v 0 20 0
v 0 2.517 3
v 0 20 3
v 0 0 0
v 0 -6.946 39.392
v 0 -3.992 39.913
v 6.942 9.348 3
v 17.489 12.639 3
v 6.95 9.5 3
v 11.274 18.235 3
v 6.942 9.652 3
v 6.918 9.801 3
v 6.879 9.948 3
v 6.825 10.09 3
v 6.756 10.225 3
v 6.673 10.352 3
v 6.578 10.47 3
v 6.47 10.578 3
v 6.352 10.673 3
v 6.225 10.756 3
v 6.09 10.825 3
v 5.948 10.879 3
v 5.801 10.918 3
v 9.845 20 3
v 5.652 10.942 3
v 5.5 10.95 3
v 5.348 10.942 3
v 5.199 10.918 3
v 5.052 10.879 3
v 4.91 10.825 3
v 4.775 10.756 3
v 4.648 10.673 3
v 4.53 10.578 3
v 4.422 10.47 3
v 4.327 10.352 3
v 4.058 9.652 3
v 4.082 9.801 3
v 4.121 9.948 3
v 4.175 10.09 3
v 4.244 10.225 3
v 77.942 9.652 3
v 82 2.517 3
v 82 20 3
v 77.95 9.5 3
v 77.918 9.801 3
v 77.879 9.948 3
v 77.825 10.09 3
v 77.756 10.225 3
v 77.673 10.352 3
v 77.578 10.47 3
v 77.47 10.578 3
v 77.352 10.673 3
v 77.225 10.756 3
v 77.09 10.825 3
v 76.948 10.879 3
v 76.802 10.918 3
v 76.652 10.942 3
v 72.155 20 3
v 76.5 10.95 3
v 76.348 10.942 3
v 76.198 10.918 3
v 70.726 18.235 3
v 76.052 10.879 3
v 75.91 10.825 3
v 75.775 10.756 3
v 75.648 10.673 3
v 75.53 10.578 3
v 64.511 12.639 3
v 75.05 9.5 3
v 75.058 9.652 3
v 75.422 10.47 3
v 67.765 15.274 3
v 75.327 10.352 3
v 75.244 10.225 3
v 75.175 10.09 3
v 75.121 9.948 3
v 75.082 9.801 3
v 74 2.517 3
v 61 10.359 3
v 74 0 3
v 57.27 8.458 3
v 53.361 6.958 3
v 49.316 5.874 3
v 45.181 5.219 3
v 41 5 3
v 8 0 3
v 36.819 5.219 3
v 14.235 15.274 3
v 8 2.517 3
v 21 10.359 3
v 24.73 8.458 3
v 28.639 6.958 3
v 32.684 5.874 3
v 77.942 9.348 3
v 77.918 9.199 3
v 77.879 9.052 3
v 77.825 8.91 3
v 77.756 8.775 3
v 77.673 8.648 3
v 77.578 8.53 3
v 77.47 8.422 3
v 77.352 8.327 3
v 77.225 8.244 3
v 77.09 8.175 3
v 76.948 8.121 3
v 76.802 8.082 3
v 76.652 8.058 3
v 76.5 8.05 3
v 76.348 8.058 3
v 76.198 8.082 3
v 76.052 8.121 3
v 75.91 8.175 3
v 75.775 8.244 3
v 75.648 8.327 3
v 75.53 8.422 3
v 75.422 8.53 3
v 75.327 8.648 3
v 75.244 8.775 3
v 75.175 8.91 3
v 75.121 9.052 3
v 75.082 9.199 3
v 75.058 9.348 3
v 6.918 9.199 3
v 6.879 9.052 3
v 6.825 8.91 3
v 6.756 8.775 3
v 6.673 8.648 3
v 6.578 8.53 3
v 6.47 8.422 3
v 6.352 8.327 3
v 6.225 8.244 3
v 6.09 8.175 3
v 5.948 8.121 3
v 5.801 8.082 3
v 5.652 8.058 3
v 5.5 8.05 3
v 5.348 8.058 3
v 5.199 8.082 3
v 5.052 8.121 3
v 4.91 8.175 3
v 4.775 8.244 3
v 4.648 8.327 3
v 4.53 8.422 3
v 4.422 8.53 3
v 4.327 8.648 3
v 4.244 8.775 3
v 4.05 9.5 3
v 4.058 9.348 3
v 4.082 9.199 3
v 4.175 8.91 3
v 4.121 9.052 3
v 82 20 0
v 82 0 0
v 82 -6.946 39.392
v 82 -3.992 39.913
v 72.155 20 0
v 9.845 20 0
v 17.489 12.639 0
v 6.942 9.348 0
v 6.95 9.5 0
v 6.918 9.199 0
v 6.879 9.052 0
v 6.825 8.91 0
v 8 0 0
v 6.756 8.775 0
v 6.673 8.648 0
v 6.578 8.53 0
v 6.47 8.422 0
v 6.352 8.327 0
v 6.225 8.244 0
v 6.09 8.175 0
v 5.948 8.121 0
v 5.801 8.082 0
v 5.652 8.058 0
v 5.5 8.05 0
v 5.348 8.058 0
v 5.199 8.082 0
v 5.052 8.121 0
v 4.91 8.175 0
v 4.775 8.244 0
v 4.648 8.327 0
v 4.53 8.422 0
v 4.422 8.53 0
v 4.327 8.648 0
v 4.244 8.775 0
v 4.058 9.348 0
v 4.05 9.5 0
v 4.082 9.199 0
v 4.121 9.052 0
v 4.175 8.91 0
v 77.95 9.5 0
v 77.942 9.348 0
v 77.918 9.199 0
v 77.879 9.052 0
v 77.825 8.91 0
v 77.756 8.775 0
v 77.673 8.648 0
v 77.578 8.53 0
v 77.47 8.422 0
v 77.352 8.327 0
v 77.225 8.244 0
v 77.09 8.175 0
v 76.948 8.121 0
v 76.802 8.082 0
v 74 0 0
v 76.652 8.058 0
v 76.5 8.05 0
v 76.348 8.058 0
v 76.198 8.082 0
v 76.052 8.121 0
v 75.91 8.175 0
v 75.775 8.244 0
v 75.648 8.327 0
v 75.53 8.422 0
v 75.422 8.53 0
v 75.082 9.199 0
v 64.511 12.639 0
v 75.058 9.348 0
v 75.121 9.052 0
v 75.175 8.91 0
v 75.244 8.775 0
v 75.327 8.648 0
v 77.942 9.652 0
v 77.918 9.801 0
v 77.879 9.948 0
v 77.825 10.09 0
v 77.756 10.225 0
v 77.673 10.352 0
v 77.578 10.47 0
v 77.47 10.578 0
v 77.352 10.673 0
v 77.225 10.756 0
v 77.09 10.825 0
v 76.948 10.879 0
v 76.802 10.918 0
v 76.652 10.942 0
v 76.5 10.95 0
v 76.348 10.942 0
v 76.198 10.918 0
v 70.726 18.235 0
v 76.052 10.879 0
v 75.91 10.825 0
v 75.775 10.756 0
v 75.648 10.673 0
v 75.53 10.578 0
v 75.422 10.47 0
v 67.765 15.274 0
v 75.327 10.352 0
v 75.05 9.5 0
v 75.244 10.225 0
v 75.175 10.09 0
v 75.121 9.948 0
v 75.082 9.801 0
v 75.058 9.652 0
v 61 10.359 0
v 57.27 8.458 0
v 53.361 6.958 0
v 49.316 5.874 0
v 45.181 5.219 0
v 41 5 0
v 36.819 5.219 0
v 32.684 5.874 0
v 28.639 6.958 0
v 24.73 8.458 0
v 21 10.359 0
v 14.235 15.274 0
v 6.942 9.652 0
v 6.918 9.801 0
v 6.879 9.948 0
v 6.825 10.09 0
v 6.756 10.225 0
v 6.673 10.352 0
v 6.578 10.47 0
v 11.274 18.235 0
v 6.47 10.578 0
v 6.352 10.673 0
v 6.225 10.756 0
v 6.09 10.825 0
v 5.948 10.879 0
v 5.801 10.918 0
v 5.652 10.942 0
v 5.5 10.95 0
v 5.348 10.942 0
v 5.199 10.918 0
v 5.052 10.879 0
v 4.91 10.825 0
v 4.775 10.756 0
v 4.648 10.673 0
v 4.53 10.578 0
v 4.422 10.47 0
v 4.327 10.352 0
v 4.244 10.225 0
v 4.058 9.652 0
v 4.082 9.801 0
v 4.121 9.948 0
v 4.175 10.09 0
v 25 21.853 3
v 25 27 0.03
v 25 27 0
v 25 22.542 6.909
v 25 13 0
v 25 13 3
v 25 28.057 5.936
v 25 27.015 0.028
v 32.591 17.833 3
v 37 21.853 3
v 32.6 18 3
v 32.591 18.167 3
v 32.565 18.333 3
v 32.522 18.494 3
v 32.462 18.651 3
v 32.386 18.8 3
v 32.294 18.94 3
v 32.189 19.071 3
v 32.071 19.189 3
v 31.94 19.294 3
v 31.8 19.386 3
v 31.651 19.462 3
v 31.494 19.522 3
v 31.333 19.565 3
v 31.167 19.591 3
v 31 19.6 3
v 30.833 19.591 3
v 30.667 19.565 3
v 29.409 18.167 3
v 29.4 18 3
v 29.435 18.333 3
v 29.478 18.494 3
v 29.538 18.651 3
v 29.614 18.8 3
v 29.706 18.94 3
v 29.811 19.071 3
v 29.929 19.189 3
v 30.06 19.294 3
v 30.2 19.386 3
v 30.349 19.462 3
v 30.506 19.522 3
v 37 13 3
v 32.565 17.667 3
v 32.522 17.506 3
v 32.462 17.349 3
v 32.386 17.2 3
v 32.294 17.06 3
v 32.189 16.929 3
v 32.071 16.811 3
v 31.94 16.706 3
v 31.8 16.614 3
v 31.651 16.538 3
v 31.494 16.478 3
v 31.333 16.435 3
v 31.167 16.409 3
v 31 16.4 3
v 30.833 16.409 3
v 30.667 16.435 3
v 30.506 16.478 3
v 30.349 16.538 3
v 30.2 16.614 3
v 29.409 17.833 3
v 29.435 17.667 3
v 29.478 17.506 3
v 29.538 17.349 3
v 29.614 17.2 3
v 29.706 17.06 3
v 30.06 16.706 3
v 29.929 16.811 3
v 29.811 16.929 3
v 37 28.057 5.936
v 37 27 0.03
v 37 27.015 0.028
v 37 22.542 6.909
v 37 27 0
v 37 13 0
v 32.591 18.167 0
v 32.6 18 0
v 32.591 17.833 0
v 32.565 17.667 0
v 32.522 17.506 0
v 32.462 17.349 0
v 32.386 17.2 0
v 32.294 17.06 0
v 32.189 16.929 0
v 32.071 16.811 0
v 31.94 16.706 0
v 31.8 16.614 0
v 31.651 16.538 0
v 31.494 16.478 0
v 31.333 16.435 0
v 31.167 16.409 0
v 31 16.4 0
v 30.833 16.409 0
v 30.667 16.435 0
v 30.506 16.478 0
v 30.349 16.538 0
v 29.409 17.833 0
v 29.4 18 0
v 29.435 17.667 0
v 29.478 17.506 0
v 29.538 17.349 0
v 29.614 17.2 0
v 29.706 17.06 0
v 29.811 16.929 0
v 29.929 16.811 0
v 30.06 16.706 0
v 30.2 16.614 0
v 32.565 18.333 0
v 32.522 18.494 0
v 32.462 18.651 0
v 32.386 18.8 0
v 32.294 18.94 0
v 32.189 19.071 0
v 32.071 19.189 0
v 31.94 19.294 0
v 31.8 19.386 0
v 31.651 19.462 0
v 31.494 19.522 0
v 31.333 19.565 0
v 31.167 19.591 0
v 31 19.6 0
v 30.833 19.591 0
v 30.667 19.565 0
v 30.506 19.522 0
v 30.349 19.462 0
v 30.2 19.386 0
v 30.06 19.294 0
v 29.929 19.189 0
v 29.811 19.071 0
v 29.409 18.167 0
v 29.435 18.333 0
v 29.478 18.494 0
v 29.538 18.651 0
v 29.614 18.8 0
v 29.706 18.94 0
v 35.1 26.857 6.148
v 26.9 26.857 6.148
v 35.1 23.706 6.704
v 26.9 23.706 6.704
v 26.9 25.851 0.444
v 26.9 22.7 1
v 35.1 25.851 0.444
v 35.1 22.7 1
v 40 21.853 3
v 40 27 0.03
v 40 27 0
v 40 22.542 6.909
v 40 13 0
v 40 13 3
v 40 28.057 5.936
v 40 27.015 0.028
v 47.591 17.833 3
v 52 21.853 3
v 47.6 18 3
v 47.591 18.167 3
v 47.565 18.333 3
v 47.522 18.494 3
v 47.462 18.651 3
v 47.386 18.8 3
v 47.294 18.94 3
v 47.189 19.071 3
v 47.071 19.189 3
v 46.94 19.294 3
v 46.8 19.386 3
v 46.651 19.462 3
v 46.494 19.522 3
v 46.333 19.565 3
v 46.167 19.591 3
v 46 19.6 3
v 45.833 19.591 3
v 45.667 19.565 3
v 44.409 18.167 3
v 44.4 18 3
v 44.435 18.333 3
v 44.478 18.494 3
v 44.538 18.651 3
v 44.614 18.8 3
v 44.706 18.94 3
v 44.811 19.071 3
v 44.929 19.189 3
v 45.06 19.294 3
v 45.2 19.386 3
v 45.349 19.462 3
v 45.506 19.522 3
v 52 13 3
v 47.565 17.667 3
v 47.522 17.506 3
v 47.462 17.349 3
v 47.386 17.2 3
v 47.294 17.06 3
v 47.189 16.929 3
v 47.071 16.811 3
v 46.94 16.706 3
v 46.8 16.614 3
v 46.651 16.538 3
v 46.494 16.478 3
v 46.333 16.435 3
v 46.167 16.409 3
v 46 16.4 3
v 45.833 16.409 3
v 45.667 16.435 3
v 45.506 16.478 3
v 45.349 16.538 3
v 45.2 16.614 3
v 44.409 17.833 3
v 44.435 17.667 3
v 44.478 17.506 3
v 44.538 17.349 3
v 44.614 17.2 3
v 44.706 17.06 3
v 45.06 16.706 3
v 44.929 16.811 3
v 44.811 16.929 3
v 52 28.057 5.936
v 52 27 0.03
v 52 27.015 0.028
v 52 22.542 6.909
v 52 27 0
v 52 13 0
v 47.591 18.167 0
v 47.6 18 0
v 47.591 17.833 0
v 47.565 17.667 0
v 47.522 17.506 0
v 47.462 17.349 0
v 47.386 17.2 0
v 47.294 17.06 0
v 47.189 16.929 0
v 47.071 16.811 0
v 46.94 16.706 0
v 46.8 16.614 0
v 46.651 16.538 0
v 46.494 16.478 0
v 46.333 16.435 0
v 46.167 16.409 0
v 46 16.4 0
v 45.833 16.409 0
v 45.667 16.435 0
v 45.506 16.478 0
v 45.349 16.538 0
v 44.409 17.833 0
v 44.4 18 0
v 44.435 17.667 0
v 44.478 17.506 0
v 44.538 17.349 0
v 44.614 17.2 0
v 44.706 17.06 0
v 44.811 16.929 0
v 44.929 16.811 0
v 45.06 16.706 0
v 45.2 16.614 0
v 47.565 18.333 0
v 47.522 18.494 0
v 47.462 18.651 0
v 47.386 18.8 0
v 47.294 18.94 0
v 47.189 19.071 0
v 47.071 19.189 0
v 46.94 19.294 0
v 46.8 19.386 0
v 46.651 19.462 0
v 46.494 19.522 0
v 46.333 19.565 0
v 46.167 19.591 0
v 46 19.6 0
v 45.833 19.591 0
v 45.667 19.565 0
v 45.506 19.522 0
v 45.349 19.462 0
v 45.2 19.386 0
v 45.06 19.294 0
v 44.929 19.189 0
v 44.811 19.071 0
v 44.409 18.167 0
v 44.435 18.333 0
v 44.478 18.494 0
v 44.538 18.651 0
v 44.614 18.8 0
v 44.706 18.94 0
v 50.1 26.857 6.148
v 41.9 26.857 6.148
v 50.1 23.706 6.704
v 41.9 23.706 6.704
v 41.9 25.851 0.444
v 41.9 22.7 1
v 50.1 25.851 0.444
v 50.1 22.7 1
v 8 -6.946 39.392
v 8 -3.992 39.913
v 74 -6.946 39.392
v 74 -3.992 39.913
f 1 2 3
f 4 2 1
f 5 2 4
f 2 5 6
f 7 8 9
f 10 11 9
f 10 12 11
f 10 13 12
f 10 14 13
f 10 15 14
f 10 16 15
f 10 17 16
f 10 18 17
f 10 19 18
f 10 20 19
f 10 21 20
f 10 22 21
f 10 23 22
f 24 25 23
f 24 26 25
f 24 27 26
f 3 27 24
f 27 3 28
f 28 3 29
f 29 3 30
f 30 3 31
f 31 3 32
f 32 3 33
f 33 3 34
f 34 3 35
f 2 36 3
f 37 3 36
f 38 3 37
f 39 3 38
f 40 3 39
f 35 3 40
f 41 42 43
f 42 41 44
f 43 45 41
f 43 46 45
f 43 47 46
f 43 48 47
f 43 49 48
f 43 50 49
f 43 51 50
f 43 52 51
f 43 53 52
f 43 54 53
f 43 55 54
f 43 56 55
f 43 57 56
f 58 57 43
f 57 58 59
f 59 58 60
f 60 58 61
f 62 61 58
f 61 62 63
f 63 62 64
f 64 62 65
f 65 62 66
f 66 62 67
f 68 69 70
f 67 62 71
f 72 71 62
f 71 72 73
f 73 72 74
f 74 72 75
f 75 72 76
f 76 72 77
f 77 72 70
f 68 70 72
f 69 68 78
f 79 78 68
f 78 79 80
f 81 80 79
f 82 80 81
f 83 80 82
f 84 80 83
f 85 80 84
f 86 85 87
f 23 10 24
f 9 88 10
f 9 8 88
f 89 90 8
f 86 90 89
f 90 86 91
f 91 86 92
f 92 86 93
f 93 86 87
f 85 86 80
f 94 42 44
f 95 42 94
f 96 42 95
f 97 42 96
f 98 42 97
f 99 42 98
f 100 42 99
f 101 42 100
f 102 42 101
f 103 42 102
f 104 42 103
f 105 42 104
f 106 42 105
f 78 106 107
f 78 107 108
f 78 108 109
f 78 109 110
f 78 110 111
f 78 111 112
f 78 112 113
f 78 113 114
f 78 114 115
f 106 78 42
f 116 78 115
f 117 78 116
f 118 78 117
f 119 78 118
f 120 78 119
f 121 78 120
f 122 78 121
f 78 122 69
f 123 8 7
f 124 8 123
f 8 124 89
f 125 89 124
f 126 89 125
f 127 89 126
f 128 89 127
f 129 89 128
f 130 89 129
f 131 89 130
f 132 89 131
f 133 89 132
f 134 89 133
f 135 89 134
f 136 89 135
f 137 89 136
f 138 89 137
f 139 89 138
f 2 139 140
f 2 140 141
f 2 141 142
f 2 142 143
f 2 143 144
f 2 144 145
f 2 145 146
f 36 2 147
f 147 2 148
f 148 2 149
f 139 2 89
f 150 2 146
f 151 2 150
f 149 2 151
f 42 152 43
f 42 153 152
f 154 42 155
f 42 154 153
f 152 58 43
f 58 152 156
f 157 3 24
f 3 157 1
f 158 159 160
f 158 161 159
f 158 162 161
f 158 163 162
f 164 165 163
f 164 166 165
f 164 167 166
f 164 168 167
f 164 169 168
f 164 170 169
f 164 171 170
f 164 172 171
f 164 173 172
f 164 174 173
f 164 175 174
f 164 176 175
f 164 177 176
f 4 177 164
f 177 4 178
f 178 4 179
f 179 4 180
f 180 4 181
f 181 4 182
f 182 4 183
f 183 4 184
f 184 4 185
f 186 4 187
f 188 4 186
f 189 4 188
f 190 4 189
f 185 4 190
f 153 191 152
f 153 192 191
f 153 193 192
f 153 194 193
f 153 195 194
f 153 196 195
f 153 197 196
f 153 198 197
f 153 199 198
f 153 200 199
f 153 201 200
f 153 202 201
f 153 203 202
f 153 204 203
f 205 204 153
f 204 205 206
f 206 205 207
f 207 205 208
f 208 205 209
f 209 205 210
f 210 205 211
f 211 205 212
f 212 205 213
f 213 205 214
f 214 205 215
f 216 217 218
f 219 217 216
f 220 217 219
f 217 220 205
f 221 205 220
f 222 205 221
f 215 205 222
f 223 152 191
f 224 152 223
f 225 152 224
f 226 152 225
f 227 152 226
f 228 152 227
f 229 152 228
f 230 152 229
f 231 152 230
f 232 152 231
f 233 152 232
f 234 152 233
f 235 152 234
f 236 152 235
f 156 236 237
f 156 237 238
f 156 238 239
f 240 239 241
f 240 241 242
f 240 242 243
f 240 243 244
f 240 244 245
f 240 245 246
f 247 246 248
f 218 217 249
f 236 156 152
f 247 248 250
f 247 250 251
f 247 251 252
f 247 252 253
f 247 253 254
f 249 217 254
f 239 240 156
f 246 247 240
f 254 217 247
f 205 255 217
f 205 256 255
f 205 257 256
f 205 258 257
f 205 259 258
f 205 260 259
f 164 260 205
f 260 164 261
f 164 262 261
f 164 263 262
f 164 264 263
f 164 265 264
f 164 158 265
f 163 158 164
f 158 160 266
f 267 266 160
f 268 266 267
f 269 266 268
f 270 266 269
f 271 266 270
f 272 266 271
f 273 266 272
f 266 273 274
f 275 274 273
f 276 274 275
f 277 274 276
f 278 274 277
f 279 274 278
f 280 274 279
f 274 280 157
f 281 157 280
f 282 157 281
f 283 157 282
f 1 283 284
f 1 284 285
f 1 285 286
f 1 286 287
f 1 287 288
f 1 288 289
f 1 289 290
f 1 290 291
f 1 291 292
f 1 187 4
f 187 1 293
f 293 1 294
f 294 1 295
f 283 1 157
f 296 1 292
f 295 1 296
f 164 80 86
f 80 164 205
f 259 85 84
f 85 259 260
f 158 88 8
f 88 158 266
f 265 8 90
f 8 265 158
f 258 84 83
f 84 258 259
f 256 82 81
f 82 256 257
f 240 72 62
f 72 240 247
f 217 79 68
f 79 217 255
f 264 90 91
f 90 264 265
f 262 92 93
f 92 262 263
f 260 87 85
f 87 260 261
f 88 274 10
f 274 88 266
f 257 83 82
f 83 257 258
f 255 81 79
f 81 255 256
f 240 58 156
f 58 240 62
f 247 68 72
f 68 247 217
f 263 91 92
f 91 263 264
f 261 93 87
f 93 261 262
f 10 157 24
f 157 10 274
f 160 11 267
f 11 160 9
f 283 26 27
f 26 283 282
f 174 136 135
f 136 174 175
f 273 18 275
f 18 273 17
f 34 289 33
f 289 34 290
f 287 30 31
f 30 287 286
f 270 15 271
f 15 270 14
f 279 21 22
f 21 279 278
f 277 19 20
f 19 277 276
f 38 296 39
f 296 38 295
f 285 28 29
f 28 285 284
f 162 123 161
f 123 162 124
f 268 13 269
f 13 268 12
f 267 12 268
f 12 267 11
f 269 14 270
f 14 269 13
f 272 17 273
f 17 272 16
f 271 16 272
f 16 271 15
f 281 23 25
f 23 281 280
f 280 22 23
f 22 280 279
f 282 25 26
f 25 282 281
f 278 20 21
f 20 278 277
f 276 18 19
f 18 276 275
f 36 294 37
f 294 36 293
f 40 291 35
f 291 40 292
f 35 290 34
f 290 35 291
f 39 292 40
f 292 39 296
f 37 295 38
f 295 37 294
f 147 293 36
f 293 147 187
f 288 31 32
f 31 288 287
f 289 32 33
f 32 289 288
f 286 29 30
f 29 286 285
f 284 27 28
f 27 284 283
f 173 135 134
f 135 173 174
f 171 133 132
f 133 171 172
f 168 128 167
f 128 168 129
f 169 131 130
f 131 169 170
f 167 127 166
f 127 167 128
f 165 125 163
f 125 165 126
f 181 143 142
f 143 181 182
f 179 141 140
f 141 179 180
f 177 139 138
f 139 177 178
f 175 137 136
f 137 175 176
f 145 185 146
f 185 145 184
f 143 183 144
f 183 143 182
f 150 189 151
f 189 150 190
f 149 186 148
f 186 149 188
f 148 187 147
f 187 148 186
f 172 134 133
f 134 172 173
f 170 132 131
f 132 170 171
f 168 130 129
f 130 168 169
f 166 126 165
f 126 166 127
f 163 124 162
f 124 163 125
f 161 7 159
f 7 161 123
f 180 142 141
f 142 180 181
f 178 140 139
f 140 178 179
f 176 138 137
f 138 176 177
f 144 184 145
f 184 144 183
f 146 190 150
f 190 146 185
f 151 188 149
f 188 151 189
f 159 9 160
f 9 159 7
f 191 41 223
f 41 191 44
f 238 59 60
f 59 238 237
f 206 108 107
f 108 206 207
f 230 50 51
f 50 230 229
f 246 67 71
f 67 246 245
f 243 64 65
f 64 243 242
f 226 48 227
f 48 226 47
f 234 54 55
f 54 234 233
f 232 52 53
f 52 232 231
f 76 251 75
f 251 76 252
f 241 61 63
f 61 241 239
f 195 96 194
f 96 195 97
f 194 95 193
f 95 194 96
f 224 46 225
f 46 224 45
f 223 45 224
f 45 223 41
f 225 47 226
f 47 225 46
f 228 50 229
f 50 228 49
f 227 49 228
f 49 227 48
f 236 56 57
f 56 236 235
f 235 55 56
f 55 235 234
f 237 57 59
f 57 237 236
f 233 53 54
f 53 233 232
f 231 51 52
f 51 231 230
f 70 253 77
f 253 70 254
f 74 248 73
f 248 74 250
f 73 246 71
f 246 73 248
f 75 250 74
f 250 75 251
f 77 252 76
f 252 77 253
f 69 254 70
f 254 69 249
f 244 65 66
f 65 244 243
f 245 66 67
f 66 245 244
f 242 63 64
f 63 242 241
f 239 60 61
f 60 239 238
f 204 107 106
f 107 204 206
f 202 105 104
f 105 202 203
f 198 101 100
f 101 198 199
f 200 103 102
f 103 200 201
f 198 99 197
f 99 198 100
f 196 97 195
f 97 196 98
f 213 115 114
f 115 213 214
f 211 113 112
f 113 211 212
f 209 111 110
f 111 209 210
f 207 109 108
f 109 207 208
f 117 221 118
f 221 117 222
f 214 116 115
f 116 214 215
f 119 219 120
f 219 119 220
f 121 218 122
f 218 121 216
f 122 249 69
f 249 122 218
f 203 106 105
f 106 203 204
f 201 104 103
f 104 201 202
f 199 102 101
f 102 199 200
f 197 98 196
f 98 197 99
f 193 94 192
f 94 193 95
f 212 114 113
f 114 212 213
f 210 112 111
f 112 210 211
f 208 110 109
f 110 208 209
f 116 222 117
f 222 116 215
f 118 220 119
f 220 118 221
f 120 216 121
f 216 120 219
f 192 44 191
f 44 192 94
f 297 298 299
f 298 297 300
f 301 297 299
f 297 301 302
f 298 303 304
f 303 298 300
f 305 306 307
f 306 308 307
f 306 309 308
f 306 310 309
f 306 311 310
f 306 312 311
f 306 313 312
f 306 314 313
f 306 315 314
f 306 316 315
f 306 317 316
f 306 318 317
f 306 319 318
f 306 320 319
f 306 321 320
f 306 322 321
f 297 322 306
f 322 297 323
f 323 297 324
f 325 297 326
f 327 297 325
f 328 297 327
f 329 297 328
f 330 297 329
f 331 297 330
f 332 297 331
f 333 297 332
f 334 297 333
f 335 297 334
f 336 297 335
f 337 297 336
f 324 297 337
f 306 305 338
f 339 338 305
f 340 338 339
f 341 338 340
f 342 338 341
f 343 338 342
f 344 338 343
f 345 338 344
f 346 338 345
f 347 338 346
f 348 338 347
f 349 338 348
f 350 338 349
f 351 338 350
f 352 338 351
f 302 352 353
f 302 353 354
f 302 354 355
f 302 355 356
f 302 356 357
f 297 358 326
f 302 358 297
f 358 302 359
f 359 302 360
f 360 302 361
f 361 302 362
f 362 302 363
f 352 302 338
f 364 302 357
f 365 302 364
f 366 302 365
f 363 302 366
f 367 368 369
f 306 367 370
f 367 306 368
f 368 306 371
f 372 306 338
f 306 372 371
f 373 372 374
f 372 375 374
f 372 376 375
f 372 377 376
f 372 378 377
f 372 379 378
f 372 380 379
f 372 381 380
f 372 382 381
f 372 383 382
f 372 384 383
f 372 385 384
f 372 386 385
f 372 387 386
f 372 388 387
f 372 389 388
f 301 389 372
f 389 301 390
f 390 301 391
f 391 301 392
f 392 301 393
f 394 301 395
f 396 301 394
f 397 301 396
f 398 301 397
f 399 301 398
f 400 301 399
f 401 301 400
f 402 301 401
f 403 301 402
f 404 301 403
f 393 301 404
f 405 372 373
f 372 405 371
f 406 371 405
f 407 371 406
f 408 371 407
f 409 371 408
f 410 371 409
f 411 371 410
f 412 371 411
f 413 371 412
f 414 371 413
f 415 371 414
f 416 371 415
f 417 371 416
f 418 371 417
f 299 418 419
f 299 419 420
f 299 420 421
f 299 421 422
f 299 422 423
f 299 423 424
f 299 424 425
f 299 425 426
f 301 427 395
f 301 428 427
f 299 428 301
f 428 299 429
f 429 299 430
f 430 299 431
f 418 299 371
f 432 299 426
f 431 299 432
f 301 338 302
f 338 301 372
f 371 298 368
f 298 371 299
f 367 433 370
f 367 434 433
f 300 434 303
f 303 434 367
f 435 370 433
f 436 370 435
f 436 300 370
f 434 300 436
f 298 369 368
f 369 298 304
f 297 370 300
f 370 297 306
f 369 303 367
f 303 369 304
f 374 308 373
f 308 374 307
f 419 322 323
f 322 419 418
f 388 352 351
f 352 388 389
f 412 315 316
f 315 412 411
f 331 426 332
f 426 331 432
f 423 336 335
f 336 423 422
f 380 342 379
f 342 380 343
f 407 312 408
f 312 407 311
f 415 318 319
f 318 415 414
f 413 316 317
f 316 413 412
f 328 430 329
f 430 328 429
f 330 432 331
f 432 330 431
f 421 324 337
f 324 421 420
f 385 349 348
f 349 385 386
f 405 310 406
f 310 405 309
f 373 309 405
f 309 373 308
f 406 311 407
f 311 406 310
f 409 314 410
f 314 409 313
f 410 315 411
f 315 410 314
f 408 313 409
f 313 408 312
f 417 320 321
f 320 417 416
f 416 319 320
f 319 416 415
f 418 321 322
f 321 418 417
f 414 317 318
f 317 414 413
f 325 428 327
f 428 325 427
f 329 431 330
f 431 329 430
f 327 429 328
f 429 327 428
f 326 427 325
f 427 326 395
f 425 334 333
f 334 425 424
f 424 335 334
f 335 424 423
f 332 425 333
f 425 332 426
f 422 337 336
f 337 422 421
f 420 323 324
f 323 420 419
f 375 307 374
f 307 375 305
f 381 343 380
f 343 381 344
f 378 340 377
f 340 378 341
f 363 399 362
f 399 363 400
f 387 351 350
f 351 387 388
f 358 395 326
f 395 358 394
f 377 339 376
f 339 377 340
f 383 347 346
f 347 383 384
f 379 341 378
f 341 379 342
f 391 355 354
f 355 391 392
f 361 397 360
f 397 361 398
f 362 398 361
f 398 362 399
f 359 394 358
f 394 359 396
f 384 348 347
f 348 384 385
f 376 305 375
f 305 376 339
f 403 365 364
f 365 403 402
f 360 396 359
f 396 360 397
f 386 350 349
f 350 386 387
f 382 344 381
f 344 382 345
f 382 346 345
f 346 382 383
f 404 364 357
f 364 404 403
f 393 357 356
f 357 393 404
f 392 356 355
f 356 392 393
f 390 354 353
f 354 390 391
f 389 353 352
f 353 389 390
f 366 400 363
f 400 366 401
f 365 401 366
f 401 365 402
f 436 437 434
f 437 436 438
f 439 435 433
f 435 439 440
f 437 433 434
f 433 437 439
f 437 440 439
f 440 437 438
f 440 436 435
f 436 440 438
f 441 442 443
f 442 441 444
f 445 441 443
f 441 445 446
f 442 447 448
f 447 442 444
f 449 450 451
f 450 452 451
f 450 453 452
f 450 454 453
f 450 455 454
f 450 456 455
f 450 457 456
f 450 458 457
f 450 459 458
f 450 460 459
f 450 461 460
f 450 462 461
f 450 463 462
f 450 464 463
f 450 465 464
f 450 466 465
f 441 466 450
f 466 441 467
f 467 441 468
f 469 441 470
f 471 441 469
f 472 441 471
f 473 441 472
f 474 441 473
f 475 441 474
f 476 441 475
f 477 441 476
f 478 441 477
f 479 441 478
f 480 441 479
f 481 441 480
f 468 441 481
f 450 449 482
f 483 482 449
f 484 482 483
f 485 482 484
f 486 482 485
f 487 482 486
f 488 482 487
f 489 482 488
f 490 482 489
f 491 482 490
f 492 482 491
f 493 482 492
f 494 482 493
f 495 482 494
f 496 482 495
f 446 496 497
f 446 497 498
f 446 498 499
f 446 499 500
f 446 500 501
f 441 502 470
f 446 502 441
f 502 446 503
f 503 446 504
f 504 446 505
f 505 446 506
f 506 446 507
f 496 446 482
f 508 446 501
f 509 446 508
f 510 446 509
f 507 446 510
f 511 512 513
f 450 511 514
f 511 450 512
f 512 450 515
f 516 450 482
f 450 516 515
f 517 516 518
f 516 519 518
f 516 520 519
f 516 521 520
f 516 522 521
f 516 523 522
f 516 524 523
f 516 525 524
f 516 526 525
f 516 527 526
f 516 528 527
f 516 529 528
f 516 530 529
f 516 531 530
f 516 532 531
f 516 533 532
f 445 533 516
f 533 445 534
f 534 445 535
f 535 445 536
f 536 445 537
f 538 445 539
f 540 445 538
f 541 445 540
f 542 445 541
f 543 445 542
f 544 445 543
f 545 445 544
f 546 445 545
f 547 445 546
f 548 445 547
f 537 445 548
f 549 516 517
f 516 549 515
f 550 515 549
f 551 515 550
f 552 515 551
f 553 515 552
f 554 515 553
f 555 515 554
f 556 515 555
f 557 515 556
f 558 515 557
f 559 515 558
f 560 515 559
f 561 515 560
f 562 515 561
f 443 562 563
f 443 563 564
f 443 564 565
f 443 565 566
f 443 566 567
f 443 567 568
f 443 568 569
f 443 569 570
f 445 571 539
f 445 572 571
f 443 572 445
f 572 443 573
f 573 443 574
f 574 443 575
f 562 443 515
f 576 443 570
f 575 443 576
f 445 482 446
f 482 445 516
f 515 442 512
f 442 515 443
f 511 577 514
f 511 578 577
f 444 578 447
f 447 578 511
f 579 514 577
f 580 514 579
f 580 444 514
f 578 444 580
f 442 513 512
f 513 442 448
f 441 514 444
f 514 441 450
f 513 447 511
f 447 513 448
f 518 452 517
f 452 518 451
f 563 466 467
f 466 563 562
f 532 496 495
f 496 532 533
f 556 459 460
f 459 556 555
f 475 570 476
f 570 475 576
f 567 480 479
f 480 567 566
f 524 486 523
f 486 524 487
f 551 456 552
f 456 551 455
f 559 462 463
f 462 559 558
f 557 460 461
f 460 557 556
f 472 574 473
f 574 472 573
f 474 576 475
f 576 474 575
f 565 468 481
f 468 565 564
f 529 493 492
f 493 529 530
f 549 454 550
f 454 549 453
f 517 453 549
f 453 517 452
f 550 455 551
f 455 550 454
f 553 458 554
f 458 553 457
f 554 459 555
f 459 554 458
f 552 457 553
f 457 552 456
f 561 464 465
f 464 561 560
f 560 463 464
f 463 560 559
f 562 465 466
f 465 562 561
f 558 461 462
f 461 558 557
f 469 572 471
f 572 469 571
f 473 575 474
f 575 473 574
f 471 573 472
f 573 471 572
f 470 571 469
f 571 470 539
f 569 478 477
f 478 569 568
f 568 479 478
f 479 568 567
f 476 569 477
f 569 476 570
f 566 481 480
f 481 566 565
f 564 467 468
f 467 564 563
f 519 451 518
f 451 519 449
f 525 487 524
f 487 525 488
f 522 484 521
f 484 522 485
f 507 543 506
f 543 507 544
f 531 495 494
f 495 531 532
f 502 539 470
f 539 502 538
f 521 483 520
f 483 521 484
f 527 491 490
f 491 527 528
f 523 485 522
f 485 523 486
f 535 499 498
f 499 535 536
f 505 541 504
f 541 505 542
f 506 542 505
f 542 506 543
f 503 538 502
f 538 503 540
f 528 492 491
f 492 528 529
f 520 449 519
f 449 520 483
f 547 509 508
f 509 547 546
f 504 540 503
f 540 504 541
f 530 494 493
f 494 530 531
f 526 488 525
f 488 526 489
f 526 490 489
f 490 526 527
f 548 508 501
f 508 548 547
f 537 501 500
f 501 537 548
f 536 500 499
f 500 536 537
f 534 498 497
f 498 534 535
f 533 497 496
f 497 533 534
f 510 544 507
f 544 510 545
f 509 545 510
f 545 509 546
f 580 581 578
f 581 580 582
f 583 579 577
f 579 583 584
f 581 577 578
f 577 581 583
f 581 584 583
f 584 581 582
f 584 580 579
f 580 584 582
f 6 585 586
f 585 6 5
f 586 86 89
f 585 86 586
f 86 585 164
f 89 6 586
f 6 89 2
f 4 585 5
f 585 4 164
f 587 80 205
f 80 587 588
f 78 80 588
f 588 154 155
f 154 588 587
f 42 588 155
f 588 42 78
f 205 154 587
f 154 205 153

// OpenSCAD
side = 82;
nut_holes = 71;
$fn=60;

slop = 0.10;
angle = 10;

nozzle = 0.6;

difference() {
    cube([side,20,3]);
    translate([side/2, 45, -0.1]) cylinder(d=80,h=4);
    translate([(side-80)/2 + (80-nut_holes)/2, 5+(80-nut_holes)/2,0]) cylinder(d=2.9, h=5);
    translate([side-((side-80)/2 + (80-nut_holes)/2), 5+(80-nut_holes)/2,0]) cylinder(d=2.9, h=5);
}

translate([0,0,0]) rotate([angle,0,0]) cube([8,3,40]);
translate([side-8,0,0]) rotate([angle,0,0]) cube([8,3,40]);

module leg() {
    
    module body() {
        union() {
            cube([12,14,3]);
            translate([0,8.5,1]) rotate([-angle,0,0]) cube([12,3+4*nozzle+2*slop,6]);
        }
    }
    
    difference() {
        body();
        translate([6, 5, 0]) cylinder(d=3.2, h=4);
        translate([2-slop,8.5+2*nozzle,1]) rotate([-angle,0,0]) cube([8+2*slop,3+2*slop,10]);
    }
}

//translate([-2, -16.9, -40]) leg();
//translate([side-10, -16.9, -40]) leg();

translate([25, 13, 0]) leg();
translate([40, 13, 0]) leg();
